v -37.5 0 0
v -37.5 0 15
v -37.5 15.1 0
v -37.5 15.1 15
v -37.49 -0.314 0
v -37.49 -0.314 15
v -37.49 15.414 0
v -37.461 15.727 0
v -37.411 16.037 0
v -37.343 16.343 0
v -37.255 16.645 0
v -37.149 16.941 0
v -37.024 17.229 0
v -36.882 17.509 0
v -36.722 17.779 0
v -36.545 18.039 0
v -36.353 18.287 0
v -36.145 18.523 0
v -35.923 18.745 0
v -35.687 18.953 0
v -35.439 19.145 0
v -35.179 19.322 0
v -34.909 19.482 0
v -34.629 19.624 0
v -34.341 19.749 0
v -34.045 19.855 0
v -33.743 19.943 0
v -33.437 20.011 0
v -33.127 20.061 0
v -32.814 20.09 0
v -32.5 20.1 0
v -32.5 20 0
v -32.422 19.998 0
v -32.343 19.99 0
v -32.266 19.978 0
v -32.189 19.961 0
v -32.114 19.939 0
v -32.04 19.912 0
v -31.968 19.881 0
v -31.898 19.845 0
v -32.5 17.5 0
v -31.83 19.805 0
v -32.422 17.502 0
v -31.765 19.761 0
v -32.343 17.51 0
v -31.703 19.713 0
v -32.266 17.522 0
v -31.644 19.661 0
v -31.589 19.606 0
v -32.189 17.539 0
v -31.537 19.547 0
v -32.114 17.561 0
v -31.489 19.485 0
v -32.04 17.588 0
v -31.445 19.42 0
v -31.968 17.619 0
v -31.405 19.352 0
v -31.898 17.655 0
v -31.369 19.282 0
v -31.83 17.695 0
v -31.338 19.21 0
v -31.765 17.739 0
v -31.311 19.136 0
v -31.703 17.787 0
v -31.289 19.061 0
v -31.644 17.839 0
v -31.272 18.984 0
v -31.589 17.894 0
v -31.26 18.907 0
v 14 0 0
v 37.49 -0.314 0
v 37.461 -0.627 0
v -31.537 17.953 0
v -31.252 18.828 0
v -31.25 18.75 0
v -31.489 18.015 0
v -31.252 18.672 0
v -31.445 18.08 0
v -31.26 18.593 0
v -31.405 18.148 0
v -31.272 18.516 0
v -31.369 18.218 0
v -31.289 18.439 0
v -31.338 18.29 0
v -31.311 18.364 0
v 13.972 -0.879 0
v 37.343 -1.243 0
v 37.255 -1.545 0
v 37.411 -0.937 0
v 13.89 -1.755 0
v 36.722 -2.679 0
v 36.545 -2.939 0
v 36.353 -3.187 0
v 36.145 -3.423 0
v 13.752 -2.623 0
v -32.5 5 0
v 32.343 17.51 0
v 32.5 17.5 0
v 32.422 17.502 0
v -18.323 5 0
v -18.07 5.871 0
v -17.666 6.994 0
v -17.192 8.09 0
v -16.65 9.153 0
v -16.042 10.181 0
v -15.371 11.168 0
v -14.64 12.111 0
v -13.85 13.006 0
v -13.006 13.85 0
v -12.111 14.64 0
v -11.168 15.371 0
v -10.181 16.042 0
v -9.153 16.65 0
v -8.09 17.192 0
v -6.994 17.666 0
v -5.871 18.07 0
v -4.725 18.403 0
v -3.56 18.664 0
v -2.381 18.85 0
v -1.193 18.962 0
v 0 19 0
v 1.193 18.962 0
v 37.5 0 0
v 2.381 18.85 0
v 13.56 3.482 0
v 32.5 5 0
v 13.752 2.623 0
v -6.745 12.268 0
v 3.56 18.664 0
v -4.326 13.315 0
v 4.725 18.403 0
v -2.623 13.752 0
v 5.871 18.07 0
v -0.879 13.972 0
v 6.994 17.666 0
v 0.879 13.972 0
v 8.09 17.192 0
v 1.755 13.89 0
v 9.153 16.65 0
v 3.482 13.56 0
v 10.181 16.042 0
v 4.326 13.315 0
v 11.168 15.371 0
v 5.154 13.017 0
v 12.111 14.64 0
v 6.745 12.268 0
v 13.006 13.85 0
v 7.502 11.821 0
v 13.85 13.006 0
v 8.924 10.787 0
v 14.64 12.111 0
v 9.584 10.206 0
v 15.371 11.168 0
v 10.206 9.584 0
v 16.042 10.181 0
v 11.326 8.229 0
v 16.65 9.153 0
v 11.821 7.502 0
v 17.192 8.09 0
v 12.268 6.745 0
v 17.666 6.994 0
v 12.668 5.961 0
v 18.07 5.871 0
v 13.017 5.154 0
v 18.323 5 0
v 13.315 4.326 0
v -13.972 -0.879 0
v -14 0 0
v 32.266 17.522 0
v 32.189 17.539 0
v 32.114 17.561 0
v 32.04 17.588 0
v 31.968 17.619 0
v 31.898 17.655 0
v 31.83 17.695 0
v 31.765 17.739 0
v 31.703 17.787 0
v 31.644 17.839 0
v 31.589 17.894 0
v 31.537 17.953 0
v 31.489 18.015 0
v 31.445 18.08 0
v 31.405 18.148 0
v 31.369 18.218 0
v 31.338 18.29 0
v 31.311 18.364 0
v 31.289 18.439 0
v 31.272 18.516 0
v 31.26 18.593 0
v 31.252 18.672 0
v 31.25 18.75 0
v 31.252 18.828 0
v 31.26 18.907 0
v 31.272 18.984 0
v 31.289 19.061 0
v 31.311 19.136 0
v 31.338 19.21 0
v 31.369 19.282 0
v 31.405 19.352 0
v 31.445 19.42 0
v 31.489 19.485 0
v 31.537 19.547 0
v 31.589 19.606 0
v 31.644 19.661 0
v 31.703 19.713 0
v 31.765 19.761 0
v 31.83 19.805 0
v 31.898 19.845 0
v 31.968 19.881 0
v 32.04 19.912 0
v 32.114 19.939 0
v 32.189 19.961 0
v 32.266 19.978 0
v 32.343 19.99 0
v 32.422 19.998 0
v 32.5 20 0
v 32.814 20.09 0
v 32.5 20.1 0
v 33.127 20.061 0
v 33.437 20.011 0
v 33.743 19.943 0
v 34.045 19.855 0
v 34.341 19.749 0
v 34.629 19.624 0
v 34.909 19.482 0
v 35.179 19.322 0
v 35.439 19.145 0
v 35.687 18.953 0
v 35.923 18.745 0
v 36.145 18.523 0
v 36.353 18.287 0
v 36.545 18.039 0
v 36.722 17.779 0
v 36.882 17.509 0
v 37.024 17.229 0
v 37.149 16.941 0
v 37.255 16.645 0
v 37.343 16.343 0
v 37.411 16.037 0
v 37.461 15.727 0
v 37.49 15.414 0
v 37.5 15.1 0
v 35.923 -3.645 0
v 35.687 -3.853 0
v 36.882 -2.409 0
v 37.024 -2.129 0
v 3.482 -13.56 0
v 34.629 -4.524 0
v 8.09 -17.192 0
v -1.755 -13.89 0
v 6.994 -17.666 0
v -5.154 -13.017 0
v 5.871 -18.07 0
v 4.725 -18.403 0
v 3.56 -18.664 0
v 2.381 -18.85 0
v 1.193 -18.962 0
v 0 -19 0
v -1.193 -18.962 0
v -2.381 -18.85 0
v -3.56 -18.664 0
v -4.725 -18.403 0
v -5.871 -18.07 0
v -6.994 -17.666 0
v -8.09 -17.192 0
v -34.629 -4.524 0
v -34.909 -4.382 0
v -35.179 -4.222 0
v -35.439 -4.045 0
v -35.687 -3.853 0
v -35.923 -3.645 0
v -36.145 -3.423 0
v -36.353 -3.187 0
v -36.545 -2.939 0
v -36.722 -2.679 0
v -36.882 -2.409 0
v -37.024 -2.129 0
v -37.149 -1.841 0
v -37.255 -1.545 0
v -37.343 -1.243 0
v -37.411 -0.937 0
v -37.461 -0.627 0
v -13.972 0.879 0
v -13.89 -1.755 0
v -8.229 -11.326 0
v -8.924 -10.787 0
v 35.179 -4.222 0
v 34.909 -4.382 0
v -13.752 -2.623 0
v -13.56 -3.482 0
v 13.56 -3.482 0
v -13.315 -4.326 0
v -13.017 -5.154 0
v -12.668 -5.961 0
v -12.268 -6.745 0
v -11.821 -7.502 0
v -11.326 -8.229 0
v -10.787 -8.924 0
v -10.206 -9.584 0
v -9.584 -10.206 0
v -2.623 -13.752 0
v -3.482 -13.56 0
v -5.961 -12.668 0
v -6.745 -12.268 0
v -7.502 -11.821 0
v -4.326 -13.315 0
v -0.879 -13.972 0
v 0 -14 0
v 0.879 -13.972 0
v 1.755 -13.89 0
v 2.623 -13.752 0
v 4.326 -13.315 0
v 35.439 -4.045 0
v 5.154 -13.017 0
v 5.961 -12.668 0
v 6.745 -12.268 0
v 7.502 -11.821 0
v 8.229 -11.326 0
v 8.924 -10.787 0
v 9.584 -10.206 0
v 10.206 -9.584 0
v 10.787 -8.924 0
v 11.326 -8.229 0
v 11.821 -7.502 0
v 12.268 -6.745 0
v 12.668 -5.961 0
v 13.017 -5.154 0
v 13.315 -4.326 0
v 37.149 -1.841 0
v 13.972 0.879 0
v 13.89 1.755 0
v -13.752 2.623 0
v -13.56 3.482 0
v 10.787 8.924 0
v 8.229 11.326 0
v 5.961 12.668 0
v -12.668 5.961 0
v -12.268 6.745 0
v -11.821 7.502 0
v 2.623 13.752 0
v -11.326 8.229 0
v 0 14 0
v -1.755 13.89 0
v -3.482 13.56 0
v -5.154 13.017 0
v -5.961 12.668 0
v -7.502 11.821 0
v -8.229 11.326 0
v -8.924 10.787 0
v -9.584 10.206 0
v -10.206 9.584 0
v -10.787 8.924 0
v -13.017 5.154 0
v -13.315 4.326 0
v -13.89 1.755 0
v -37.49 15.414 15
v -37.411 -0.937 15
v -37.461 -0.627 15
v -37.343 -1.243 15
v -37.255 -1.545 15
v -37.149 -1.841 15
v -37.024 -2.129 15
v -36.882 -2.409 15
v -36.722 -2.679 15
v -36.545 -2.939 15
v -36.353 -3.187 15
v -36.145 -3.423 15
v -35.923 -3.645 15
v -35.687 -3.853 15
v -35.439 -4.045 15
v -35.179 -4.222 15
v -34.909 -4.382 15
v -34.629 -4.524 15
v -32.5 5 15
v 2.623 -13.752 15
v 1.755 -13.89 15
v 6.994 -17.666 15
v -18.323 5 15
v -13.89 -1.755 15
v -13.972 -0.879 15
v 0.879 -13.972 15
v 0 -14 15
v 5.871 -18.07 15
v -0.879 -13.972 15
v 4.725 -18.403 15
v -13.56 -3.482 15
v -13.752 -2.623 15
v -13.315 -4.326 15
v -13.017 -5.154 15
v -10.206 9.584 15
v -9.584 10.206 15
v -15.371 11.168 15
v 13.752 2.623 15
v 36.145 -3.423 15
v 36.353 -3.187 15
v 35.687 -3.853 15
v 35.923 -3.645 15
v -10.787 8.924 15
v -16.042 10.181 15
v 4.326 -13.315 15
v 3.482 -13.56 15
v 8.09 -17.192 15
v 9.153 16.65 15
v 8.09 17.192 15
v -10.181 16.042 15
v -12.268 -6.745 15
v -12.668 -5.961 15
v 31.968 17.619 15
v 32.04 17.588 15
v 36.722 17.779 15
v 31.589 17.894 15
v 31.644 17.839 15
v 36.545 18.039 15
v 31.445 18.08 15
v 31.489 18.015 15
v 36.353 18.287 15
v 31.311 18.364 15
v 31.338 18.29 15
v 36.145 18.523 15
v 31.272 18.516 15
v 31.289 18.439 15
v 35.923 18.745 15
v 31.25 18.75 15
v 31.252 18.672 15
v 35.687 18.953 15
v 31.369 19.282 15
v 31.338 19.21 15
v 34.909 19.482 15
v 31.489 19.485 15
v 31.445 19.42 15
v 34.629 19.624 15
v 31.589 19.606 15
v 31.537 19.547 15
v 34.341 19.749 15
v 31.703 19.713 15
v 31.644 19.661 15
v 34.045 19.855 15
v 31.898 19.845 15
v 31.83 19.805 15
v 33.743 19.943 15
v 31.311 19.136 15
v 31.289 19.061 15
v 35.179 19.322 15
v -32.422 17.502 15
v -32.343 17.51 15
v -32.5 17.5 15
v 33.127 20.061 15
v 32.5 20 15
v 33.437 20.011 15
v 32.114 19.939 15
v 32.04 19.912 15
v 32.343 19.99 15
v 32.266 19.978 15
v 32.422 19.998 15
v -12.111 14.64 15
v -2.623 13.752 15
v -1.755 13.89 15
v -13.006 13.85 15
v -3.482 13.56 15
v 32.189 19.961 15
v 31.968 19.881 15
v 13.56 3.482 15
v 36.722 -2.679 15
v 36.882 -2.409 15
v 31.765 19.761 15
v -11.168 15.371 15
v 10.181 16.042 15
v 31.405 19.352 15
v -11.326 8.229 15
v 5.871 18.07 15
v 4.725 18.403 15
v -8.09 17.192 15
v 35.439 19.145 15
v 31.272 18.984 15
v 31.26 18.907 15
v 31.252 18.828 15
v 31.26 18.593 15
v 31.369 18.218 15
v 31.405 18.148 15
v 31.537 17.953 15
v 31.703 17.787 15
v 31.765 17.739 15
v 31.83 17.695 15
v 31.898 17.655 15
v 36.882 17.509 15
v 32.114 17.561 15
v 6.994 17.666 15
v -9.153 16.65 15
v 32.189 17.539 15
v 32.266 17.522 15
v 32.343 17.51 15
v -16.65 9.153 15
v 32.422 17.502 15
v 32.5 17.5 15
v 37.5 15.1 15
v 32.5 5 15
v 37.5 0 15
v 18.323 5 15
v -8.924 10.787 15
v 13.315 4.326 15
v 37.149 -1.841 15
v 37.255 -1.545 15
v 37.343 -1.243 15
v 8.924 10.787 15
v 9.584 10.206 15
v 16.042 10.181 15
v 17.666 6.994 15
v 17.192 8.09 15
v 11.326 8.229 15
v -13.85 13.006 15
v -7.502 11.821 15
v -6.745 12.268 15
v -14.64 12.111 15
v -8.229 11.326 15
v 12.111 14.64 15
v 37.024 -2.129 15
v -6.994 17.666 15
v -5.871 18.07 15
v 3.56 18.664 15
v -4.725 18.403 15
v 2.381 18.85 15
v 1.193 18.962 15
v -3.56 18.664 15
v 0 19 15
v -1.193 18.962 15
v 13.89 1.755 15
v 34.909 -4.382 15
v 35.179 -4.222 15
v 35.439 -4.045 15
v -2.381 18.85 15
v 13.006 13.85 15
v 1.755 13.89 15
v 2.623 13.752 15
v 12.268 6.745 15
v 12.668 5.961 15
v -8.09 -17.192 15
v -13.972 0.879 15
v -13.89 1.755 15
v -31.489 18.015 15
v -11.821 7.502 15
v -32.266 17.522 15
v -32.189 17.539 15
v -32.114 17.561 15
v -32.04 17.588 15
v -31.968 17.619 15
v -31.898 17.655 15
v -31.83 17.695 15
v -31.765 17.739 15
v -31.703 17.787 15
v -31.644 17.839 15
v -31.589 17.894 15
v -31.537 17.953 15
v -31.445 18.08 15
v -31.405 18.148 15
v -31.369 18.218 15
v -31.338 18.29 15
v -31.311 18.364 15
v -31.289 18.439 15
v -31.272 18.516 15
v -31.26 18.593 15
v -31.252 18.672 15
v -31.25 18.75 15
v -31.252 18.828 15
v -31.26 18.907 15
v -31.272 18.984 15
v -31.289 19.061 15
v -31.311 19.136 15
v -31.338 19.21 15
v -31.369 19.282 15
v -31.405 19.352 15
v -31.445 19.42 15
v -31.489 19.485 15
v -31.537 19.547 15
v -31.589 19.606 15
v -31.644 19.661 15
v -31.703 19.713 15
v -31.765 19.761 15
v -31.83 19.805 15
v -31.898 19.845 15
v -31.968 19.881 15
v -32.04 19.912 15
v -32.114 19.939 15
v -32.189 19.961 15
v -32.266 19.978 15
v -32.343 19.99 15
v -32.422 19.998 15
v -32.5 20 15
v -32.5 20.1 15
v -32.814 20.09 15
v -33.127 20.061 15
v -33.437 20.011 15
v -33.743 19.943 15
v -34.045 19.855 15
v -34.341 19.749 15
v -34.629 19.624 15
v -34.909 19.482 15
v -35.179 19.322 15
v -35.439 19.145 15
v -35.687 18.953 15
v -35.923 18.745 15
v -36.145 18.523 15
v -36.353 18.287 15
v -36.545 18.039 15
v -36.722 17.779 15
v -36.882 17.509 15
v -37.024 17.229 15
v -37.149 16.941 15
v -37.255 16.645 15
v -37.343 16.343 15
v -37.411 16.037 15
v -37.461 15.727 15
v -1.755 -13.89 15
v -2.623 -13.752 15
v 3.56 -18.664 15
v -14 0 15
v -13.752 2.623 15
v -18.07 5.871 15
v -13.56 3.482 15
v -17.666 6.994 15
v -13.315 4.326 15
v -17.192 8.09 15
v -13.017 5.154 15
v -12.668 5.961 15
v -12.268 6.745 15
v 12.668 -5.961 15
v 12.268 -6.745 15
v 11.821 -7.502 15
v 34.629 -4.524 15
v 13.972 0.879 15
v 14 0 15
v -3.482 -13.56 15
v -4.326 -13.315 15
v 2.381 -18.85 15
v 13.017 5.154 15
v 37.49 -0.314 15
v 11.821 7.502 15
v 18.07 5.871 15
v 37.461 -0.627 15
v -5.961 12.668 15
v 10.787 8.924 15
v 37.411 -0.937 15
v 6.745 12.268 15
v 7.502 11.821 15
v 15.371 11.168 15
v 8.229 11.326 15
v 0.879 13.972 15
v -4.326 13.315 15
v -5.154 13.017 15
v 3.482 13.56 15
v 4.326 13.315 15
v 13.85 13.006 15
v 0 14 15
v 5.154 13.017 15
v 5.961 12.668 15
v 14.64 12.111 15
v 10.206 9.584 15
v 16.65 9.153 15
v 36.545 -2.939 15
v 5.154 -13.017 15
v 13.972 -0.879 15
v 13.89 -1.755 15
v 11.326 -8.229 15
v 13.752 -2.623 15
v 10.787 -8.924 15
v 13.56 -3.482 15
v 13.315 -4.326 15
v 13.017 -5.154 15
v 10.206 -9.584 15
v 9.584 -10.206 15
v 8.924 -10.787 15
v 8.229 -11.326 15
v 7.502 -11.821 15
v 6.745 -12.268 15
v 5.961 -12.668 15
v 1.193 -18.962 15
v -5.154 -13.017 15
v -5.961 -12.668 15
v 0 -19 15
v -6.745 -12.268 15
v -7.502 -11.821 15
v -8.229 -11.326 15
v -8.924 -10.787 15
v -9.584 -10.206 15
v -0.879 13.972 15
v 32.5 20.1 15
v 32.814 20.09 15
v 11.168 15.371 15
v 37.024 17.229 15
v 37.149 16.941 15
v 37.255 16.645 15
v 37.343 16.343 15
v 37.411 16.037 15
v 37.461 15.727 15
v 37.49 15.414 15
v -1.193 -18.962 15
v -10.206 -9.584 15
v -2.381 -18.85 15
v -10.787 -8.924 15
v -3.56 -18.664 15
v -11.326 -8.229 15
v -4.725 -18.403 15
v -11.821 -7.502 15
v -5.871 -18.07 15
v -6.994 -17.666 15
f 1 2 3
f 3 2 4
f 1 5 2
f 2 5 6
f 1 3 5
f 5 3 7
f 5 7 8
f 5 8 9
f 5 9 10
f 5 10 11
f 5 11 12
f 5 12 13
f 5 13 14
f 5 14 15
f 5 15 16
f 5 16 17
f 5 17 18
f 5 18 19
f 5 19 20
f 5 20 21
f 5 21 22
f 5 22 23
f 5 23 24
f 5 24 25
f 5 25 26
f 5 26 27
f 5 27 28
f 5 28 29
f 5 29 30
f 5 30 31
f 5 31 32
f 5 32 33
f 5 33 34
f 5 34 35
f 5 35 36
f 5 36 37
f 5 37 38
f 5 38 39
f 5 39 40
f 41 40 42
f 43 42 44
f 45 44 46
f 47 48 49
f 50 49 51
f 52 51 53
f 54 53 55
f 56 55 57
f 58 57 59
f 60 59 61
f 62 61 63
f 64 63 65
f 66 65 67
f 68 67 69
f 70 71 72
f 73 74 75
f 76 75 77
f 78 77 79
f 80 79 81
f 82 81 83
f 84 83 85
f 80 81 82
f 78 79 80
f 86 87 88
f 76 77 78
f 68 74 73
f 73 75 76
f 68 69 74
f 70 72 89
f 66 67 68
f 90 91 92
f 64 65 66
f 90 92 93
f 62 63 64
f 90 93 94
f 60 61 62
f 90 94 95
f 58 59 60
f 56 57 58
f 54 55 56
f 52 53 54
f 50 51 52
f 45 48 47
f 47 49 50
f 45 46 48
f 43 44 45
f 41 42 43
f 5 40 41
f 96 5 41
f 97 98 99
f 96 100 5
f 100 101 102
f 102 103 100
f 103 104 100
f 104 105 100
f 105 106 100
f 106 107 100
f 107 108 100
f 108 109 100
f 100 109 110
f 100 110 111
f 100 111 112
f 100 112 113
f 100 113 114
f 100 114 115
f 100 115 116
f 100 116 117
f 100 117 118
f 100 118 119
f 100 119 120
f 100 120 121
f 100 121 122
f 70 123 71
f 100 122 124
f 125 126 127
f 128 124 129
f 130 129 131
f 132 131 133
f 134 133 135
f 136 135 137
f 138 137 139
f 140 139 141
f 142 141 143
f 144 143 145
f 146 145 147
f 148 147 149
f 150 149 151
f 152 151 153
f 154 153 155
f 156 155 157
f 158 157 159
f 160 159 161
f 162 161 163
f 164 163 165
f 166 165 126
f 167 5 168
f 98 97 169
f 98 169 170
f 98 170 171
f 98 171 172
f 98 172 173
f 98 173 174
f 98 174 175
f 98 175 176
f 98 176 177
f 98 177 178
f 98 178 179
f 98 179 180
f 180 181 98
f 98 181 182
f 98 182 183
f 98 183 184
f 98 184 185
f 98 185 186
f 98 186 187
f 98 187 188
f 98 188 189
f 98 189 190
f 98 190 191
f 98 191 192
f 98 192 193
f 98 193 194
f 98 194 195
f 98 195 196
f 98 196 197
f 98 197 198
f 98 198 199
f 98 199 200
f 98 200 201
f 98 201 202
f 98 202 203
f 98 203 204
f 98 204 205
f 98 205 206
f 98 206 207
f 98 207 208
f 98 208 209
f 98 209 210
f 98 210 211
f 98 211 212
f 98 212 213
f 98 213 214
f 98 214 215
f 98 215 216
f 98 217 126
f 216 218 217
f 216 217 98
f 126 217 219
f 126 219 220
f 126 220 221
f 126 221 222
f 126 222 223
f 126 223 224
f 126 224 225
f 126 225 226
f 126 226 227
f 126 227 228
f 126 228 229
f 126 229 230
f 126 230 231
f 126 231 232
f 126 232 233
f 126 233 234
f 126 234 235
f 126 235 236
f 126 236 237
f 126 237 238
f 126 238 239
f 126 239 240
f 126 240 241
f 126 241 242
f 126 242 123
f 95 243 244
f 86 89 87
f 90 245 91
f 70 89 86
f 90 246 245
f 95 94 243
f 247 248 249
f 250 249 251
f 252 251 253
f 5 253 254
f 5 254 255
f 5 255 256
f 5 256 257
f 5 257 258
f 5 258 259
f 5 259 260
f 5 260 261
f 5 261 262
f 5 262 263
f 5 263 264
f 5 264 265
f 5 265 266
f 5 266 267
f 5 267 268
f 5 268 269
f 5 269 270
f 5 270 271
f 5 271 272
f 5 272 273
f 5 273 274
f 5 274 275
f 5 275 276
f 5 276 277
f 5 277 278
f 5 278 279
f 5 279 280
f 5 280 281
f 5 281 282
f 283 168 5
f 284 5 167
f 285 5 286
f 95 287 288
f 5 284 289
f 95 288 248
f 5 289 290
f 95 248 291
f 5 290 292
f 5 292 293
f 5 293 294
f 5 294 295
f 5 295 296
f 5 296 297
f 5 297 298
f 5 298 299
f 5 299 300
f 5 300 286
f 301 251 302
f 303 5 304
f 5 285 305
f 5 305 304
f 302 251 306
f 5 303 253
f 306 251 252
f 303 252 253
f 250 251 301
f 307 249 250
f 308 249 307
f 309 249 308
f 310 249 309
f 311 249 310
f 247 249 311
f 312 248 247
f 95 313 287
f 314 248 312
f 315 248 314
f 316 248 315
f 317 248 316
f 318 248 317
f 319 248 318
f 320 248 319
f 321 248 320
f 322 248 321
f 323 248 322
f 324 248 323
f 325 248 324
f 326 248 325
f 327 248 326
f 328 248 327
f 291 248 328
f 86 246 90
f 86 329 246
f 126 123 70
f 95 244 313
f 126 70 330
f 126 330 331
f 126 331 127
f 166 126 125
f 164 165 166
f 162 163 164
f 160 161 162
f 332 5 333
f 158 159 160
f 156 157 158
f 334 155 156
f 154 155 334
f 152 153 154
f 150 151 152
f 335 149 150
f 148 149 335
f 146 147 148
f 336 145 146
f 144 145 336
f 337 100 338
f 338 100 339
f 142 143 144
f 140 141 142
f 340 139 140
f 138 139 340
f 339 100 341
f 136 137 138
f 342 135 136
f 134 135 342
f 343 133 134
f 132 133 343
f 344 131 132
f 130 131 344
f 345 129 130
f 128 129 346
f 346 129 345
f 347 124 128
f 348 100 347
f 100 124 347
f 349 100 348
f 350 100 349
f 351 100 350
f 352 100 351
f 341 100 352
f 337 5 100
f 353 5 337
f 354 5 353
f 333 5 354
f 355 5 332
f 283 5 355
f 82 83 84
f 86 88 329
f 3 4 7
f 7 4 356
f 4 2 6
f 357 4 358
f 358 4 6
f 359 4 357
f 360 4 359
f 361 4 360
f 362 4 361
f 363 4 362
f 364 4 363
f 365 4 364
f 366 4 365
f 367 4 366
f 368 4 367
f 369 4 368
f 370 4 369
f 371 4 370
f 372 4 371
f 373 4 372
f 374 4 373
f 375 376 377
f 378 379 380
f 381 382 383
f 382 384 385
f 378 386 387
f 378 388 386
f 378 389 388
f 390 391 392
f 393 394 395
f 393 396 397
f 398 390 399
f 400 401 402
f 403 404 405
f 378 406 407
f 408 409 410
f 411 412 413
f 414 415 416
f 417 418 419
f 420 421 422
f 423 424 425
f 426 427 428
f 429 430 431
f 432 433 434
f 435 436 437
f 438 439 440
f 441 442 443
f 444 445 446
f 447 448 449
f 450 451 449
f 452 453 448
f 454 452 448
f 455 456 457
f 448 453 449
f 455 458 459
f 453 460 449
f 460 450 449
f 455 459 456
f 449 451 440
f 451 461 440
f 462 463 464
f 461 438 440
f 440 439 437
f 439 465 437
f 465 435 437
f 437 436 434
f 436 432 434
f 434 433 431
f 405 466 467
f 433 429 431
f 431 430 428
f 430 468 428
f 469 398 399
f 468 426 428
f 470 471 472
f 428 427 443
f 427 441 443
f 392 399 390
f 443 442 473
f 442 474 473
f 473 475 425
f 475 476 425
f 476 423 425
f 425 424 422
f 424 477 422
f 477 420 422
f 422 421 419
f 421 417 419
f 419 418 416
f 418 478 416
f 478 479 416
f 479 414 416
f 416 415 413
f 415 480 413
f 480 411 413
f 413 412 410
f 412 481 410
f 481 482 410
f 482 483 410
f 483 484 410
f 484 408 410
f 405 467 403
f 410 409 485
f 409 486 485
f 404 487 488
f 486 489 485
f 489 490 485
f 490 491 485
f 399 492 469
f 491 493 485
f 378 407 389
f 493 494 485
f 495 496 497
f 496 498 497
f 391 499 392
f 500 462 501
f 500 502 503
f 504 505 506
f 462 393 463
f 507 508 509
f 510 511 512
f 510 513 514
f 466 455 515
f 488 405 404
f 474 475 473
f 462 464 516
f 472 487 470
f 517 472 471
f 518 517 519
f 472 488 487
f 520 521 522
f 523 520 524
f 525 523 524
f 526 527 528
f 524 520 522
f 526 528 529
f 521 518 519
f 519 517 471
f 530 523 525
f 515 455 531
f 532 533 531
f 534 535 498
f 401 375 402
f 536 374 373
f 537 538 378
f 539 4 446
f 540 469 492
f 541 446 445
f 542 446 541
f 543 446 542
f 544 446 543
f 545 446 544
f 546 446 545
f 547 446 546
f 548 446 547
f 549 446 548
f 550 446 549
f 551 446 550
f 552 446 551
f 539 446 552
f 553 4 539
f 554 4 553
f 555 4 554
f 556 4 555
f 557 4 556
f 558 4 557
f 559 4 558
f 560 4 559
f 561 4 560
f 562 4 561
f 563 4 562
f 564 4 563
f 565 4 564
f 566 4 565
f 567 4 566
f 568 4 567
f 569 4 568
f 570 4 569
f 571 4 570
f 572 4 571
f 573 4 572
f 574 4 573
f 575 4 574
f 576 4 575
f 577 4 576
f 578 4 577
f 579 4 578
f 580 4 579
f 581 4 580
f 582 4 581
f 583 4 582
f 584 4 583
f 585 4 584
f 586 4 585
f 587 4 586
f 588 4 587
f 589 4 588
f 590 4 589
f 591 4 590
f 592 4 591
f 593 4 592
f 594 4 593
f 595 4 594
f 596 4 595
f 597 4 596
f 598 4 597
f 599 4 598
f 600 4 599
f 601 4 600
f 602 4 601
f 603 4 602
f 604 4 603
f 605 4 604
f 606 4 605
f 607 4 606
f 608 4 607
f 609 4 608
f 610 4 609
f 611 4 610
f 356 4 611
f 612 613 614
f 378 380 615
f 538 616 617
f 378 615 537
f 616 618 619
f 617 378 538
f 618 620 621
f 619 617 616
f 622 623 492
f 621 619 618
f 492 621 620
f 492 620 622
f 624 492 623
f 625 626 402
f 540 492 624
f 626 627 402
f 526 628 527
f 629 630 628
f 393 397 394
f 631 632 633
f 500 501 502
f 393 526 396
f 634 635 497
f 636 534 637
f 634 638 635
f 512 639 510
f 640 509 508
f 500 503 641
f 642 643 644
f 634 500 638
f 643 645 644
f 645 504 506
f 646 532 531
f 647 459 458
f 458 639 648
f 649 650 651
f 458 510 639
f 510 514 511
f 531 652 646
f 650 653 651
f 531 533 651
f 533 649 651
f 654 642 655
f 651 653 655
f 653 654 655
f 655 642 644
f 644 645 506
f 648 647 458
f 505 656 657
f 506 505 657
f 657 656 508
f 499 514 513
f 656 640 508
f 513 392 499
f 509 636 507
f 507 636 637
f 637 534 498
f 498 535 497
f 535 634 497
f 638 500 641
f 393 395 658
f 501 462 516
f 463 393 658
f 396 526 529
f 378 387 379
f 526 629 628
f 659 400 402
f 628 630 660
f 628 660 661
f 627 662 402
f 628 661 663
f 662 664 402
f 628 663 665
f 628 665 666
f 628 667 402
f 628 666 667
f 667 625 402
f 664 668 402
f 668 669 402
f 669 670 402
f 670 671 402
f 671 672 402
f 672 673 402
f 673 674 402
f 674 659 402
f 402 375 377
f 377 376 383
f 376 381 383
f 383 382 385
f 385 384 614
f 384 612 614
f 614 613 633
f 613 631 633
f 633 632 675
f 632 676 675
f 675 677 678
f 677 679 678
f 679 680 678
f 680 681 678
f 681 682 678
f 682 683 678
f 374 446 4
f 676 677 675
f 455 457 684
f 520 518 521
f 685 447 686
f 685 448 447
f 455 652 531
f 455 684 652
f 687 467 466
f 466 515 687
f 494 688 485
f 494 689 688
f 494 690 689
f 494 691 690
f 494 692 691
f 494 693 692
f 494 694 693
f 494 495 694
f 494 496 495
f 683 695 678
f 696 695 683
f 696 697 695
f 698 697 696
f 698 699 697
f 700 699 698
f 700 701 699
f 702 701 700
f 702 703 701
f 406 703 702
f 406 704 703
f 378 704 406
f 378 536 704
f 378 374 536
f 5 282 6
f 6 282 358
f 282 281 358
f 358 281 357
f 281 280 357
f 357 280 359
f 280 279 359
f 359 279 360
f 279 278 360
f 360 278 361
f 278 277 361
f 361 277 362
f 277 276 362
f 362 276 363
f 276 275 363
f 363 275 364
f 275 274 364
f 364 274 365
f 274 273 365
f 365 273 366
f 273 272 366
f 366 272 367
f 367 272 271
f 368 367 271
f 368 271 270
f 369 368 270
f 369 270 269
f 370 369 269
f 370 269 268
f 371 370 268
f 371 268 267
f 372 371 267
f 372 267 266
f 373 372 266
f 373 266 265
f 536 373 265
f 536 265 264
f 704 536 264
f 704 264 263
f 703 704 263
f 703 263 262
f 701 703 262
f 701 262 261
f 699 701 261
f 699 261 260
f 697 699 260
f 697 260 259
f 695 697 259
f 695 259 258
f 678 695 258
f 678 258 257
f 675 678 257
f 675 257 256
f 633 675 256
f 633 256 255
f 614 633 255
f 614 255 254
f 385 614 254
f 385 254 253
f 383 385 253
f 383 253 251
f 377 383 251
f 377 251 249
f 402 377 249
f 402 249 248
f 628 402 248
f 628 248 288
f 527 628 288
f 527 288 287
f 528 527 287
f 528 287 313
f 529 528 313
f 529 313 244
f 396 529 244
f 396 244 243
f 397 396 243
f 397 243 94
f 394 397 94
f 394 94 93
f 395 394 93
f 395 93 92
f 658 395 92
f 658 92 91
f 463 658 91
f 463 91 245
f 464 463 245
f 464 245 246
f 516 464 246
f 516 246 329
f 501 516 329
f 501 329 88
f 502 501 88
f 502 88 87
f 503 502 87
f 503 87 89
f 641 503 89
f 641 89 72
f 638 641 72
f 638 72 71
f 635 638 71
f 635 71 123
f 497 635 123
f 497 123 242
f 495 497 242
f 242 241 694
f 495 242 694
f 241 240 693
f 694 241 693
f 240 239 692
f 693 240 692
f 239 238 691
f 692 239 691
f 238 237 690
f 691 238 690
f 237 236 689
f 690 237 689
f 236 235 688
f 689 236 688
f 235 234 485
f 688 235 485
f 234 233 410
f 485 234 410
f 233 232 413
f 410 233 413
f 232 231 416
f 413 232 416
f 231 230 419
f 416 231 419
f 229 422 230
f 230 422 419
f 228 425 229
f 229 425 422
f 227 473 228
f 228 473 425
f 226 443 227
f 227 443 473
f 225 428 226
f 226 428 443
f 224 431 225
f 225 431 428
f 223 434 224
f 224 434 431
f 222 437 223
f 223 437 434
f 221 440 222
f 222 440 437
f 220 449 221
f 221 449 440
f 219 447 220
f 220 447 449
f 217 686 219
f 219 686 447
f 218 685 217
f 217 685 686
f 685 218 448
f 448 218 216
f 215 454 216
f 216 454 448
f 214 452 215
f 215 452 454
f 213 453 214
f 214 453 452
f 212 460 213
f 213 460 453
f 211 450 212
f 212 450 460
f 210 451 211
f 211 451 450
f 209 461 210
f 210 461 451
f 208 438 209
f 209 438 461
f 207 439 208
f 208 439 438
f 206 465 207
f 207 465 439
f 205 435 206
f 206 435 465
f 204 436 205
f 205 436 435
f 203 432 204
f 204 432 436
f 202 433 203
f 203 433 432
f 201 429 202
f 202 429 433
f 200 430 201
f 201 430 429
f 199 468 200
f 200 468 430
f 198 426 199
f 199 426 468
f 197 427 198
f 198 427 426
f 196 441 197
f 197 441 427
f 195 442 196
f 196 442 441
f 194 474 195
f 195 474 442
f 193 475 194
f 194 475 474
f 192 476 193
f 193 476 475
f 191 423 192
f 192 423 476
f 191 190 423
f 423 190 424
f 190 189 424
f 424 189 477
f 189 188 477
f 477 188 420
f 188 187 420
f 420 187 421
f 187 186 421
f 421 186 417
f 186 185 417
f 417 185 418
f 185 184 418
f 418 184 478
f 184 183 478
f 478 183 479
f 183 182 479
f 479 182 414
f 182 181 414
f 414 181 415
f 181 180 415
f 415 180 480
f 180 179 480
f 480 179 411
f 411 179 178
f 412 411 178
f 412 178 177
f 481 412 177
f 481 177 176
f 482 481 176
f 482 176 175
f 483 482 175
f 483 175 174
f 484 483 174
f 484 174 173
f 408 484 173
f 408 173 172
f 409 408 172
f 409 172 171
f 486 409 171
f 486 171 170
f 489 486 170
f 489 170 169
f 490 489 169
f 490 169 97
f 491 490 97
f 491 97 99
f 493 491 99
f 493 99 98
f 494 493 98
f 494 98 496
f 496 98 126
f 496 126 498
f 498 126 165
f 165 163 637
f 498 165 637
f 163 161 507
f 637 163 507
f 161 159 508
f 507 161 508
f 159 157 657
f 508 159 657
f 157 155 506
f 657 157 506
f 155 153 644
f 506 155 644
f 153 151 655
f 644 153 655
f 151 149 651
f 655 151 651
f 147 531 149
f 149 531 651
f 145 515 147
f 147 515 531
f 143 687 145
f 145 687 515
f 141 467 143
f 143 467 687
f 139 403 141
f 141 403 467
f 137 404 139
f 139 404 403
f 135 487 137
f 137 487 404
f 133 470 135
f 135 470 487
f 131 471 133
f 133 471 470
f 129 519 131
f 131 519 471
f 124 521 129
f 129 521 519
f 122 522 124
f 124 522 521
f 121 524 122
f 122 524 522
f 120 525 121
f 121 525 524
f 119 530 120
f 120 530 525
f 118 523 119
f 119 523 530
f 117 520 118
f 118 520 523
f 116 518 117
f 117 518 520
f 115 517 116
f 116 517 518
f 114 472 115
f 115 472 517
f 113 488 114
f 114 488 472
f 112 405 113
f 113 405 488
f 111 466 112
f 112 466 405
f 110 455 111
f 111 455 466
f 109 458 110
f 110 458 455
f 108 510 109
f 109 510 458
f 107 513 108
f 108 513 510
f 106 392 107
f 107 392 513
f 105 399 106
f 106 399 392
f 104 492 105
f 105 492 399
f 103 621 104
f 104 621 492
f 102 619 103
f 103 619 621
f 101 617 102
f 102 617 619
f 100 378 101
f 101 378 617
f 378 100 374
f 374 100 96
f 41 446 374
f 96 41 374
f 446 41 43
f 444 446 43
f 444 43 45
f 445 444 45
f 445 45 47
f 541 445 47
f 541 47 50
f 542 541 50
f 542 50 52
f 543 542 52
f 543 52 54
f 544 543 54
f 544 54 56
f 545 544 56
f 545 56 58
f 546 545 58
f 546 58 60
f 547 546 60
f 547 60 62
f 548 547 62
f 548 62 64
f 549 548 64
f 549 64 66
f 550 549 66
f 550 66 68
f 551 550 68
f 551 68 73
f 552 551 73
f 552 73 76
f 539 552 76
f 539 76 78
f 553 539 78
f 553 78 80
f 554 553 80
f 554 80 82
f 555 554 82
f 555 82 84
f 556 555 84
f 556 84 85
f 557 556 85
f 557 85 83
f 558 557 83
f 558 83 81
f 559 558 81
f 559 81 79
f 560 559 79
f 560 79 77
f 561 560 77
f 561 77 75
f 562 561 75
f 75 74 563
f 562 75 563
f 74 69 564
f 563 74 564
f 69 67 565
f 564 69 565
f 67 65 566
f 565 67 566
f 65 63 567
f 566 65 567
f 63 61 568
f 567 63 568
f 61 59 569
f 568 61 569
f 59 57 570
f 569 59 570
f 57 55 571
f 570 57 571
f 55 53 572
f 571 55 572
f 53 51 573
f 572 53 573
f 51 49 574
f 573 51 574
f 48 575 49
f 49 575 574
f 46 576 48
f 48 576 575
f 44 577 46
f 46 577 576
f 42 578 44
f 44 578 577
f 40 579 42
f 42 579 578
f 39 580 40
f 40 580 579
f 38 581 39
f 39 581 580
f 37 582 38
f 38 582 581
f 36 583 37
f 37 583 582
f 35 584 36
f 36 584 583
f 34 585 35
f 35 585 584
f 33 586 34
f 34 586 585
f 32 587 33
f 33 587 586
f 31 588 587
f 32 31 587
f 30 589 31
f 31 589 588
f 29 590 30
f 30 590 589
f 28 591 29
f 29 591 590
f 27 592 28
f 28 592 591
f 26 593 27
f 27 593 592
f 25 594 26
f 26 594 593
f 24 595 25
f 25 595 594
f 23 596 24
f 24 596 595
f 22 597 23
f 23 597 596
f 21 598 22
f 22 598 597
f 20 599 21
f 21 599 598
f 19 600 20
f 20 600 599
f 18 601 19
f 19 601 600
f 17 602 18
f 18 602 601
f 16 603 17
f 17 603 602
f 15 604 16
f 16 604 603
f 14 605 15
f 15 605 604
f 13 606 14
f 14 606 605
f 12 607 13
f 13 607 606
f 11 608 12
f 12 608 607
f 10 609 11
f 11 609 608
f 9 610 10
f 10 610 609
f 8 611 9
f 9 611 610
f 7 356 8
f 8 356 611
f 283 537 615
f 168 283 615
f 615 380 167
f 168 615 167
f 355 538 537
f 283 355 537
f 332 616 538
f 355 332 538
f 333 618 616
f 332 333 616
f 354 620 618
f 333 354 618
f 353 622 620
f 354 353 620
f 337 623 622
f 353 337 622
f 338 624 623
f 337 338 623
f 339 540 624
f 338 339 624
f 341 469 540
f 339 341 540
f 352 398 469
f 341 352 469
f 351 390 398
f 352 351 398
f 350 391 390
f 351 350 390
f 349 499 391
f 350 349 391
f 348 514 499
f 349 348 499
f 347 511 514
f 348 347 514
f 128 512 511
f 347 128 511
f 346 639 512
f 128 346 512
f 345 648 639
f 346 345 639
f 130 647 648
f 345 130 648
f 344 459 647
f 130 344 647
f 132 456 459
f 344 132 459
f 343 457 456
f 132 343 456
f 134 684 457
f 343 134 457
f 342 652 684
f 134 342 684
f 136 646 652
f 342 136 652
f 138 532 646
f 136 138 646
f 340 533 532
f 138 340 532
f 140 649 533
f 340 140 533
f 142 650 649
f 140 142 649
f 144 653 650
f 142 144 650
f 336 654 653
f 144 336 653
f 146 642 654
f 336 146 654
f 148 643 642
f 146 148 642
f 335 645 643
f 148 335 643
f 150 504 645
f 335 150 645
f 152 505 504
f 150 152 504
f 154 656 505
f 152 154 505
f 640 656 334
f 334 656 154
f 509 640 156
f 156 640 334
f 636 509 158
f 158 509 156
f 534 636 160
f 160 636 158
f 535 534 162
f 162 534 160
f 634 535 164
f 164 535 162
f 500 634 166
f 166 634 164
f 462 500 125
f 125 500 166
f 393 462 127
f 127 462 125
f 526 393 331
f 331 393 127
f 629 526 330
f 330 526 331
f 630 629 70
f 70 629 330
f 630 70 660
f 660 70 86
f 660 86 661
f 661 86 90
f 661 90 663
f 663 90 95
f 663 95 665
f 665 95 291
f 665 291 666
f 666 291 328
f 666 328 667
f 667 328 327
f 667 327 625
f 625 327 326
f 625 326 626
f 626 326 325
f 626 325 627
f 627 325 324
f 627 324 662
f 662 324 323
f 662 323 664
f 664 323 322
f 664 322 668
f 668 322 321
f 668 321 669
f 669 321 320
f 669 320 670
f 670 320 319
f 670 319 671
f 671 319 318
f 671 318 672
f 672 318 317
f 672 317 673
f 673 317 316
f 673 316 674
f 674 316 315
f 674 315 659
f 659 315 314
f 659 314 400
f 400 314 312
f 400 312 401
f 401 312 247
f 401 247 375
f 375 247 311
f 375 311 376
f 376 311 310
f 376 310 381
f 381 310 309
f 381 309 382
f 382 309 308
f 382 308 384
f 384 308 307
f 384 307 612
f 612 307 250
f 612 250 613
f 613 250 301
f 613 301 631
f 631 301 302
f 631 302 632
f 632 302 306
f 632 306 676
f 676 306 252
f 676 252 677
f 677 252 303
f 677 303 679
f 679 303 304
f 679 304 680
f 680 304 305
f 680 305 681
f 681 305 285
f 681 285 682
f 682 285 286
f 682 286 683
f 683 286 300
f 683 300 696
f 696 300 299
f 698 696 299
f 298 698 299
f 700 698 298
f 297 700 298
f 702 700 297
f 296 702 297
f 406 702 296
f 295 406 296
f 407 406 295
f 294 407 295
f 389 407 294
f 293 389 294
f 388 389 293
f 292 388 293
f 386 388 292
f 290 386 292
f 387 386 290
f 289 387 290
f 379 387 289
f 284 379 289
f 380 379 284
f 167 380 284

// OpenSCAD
// avonpumpclip-new.scad
// Avon Pump Clip - Newer Pump Design
// 
// Copyright (C) 2013 Christopher Roberts
//
// This program is free software: you can redistribute it and/or modify
// it under the terms of the GNU General Public License as published by
// the Free Software Foundation, either version 3 of the License, or
// (at your option) any later version.
// 
// This program is distributed in the hope that it will be useful,
// but WITHOUT ANY WARRANTY; without even the implied warranty of
// MERCHANTABILITY or FITNESS FOR A PARTICULAR PURPOSE.  See the
// GNU General Public License for more details.
// 
// You should have received a copy of the GNU General Public License
// along with this program.  If not, see <http://www.gnu.org/licenses/>.

// Pump clamp parameters
depth               = 15; //mm
jaws_width          = 65; //mm
reach               = 15; //mm
projection          = 2.5; //mm

// Hose clamp parameters
hose_diameter       = 28; //mm

// Other parameters
thickness           = 5; //mm
circular_precision  = 100;
shim                = 0.1; //mm

module avonpumpclip() {

    difference() {

        // Things that exist
        union() {
            // The basic clamp shape
            avonpumpclip_clamp();

            // cylinder around hose hole
            cylinder( r = hose_diameter/2 + thickness, h = depth, $fn = circular_precision );

            // The projection
            for ( x = [ -jaws_width/2, jaws_width/2 ] ) {
                translate( [ x, reach + thickness - projection/2, 0 ] ) {
                    cylinder( r = projection/2, h = depth, $fn = circular_precision );
                }
            }
        }

        // Things that don't exist
        union() {
            translate( [ 0, 0, -shim ] ) {
                cylinder( r = hose_diameter/2, h = depth + 2 * shim, $fn = circular_precision );
            }
        }

    }

}

module avonpumpclip_clamp() {

    difference() {

        // Things that exist
        union() {
            hull() {
                // cylinder around hose hole
                cylinder( r = hose_diameter/2 + thickness, h = depth, $fn = circular_precision );

                // four small circles around part to create rounded hull
                for ( y = [0, reach + shim] ) {
                    for ( x = [-jaws_width/2, jaws_width/2] ) {
                        translate( [x, y, 0] ) {
                            cylinder( r = thickness, h = depth, $fn = circular_precision );
                        }
                    }
                }
            }

        }

        // Things to be cut out
        union() {
            // hose hole
            translate( [-jaws_width/2, thickness, -shim] ) {
                cube( [ jaws_width, 2 * reach, depth + shim *2] );
            }
        }
    }

}

avonpumpclip();
